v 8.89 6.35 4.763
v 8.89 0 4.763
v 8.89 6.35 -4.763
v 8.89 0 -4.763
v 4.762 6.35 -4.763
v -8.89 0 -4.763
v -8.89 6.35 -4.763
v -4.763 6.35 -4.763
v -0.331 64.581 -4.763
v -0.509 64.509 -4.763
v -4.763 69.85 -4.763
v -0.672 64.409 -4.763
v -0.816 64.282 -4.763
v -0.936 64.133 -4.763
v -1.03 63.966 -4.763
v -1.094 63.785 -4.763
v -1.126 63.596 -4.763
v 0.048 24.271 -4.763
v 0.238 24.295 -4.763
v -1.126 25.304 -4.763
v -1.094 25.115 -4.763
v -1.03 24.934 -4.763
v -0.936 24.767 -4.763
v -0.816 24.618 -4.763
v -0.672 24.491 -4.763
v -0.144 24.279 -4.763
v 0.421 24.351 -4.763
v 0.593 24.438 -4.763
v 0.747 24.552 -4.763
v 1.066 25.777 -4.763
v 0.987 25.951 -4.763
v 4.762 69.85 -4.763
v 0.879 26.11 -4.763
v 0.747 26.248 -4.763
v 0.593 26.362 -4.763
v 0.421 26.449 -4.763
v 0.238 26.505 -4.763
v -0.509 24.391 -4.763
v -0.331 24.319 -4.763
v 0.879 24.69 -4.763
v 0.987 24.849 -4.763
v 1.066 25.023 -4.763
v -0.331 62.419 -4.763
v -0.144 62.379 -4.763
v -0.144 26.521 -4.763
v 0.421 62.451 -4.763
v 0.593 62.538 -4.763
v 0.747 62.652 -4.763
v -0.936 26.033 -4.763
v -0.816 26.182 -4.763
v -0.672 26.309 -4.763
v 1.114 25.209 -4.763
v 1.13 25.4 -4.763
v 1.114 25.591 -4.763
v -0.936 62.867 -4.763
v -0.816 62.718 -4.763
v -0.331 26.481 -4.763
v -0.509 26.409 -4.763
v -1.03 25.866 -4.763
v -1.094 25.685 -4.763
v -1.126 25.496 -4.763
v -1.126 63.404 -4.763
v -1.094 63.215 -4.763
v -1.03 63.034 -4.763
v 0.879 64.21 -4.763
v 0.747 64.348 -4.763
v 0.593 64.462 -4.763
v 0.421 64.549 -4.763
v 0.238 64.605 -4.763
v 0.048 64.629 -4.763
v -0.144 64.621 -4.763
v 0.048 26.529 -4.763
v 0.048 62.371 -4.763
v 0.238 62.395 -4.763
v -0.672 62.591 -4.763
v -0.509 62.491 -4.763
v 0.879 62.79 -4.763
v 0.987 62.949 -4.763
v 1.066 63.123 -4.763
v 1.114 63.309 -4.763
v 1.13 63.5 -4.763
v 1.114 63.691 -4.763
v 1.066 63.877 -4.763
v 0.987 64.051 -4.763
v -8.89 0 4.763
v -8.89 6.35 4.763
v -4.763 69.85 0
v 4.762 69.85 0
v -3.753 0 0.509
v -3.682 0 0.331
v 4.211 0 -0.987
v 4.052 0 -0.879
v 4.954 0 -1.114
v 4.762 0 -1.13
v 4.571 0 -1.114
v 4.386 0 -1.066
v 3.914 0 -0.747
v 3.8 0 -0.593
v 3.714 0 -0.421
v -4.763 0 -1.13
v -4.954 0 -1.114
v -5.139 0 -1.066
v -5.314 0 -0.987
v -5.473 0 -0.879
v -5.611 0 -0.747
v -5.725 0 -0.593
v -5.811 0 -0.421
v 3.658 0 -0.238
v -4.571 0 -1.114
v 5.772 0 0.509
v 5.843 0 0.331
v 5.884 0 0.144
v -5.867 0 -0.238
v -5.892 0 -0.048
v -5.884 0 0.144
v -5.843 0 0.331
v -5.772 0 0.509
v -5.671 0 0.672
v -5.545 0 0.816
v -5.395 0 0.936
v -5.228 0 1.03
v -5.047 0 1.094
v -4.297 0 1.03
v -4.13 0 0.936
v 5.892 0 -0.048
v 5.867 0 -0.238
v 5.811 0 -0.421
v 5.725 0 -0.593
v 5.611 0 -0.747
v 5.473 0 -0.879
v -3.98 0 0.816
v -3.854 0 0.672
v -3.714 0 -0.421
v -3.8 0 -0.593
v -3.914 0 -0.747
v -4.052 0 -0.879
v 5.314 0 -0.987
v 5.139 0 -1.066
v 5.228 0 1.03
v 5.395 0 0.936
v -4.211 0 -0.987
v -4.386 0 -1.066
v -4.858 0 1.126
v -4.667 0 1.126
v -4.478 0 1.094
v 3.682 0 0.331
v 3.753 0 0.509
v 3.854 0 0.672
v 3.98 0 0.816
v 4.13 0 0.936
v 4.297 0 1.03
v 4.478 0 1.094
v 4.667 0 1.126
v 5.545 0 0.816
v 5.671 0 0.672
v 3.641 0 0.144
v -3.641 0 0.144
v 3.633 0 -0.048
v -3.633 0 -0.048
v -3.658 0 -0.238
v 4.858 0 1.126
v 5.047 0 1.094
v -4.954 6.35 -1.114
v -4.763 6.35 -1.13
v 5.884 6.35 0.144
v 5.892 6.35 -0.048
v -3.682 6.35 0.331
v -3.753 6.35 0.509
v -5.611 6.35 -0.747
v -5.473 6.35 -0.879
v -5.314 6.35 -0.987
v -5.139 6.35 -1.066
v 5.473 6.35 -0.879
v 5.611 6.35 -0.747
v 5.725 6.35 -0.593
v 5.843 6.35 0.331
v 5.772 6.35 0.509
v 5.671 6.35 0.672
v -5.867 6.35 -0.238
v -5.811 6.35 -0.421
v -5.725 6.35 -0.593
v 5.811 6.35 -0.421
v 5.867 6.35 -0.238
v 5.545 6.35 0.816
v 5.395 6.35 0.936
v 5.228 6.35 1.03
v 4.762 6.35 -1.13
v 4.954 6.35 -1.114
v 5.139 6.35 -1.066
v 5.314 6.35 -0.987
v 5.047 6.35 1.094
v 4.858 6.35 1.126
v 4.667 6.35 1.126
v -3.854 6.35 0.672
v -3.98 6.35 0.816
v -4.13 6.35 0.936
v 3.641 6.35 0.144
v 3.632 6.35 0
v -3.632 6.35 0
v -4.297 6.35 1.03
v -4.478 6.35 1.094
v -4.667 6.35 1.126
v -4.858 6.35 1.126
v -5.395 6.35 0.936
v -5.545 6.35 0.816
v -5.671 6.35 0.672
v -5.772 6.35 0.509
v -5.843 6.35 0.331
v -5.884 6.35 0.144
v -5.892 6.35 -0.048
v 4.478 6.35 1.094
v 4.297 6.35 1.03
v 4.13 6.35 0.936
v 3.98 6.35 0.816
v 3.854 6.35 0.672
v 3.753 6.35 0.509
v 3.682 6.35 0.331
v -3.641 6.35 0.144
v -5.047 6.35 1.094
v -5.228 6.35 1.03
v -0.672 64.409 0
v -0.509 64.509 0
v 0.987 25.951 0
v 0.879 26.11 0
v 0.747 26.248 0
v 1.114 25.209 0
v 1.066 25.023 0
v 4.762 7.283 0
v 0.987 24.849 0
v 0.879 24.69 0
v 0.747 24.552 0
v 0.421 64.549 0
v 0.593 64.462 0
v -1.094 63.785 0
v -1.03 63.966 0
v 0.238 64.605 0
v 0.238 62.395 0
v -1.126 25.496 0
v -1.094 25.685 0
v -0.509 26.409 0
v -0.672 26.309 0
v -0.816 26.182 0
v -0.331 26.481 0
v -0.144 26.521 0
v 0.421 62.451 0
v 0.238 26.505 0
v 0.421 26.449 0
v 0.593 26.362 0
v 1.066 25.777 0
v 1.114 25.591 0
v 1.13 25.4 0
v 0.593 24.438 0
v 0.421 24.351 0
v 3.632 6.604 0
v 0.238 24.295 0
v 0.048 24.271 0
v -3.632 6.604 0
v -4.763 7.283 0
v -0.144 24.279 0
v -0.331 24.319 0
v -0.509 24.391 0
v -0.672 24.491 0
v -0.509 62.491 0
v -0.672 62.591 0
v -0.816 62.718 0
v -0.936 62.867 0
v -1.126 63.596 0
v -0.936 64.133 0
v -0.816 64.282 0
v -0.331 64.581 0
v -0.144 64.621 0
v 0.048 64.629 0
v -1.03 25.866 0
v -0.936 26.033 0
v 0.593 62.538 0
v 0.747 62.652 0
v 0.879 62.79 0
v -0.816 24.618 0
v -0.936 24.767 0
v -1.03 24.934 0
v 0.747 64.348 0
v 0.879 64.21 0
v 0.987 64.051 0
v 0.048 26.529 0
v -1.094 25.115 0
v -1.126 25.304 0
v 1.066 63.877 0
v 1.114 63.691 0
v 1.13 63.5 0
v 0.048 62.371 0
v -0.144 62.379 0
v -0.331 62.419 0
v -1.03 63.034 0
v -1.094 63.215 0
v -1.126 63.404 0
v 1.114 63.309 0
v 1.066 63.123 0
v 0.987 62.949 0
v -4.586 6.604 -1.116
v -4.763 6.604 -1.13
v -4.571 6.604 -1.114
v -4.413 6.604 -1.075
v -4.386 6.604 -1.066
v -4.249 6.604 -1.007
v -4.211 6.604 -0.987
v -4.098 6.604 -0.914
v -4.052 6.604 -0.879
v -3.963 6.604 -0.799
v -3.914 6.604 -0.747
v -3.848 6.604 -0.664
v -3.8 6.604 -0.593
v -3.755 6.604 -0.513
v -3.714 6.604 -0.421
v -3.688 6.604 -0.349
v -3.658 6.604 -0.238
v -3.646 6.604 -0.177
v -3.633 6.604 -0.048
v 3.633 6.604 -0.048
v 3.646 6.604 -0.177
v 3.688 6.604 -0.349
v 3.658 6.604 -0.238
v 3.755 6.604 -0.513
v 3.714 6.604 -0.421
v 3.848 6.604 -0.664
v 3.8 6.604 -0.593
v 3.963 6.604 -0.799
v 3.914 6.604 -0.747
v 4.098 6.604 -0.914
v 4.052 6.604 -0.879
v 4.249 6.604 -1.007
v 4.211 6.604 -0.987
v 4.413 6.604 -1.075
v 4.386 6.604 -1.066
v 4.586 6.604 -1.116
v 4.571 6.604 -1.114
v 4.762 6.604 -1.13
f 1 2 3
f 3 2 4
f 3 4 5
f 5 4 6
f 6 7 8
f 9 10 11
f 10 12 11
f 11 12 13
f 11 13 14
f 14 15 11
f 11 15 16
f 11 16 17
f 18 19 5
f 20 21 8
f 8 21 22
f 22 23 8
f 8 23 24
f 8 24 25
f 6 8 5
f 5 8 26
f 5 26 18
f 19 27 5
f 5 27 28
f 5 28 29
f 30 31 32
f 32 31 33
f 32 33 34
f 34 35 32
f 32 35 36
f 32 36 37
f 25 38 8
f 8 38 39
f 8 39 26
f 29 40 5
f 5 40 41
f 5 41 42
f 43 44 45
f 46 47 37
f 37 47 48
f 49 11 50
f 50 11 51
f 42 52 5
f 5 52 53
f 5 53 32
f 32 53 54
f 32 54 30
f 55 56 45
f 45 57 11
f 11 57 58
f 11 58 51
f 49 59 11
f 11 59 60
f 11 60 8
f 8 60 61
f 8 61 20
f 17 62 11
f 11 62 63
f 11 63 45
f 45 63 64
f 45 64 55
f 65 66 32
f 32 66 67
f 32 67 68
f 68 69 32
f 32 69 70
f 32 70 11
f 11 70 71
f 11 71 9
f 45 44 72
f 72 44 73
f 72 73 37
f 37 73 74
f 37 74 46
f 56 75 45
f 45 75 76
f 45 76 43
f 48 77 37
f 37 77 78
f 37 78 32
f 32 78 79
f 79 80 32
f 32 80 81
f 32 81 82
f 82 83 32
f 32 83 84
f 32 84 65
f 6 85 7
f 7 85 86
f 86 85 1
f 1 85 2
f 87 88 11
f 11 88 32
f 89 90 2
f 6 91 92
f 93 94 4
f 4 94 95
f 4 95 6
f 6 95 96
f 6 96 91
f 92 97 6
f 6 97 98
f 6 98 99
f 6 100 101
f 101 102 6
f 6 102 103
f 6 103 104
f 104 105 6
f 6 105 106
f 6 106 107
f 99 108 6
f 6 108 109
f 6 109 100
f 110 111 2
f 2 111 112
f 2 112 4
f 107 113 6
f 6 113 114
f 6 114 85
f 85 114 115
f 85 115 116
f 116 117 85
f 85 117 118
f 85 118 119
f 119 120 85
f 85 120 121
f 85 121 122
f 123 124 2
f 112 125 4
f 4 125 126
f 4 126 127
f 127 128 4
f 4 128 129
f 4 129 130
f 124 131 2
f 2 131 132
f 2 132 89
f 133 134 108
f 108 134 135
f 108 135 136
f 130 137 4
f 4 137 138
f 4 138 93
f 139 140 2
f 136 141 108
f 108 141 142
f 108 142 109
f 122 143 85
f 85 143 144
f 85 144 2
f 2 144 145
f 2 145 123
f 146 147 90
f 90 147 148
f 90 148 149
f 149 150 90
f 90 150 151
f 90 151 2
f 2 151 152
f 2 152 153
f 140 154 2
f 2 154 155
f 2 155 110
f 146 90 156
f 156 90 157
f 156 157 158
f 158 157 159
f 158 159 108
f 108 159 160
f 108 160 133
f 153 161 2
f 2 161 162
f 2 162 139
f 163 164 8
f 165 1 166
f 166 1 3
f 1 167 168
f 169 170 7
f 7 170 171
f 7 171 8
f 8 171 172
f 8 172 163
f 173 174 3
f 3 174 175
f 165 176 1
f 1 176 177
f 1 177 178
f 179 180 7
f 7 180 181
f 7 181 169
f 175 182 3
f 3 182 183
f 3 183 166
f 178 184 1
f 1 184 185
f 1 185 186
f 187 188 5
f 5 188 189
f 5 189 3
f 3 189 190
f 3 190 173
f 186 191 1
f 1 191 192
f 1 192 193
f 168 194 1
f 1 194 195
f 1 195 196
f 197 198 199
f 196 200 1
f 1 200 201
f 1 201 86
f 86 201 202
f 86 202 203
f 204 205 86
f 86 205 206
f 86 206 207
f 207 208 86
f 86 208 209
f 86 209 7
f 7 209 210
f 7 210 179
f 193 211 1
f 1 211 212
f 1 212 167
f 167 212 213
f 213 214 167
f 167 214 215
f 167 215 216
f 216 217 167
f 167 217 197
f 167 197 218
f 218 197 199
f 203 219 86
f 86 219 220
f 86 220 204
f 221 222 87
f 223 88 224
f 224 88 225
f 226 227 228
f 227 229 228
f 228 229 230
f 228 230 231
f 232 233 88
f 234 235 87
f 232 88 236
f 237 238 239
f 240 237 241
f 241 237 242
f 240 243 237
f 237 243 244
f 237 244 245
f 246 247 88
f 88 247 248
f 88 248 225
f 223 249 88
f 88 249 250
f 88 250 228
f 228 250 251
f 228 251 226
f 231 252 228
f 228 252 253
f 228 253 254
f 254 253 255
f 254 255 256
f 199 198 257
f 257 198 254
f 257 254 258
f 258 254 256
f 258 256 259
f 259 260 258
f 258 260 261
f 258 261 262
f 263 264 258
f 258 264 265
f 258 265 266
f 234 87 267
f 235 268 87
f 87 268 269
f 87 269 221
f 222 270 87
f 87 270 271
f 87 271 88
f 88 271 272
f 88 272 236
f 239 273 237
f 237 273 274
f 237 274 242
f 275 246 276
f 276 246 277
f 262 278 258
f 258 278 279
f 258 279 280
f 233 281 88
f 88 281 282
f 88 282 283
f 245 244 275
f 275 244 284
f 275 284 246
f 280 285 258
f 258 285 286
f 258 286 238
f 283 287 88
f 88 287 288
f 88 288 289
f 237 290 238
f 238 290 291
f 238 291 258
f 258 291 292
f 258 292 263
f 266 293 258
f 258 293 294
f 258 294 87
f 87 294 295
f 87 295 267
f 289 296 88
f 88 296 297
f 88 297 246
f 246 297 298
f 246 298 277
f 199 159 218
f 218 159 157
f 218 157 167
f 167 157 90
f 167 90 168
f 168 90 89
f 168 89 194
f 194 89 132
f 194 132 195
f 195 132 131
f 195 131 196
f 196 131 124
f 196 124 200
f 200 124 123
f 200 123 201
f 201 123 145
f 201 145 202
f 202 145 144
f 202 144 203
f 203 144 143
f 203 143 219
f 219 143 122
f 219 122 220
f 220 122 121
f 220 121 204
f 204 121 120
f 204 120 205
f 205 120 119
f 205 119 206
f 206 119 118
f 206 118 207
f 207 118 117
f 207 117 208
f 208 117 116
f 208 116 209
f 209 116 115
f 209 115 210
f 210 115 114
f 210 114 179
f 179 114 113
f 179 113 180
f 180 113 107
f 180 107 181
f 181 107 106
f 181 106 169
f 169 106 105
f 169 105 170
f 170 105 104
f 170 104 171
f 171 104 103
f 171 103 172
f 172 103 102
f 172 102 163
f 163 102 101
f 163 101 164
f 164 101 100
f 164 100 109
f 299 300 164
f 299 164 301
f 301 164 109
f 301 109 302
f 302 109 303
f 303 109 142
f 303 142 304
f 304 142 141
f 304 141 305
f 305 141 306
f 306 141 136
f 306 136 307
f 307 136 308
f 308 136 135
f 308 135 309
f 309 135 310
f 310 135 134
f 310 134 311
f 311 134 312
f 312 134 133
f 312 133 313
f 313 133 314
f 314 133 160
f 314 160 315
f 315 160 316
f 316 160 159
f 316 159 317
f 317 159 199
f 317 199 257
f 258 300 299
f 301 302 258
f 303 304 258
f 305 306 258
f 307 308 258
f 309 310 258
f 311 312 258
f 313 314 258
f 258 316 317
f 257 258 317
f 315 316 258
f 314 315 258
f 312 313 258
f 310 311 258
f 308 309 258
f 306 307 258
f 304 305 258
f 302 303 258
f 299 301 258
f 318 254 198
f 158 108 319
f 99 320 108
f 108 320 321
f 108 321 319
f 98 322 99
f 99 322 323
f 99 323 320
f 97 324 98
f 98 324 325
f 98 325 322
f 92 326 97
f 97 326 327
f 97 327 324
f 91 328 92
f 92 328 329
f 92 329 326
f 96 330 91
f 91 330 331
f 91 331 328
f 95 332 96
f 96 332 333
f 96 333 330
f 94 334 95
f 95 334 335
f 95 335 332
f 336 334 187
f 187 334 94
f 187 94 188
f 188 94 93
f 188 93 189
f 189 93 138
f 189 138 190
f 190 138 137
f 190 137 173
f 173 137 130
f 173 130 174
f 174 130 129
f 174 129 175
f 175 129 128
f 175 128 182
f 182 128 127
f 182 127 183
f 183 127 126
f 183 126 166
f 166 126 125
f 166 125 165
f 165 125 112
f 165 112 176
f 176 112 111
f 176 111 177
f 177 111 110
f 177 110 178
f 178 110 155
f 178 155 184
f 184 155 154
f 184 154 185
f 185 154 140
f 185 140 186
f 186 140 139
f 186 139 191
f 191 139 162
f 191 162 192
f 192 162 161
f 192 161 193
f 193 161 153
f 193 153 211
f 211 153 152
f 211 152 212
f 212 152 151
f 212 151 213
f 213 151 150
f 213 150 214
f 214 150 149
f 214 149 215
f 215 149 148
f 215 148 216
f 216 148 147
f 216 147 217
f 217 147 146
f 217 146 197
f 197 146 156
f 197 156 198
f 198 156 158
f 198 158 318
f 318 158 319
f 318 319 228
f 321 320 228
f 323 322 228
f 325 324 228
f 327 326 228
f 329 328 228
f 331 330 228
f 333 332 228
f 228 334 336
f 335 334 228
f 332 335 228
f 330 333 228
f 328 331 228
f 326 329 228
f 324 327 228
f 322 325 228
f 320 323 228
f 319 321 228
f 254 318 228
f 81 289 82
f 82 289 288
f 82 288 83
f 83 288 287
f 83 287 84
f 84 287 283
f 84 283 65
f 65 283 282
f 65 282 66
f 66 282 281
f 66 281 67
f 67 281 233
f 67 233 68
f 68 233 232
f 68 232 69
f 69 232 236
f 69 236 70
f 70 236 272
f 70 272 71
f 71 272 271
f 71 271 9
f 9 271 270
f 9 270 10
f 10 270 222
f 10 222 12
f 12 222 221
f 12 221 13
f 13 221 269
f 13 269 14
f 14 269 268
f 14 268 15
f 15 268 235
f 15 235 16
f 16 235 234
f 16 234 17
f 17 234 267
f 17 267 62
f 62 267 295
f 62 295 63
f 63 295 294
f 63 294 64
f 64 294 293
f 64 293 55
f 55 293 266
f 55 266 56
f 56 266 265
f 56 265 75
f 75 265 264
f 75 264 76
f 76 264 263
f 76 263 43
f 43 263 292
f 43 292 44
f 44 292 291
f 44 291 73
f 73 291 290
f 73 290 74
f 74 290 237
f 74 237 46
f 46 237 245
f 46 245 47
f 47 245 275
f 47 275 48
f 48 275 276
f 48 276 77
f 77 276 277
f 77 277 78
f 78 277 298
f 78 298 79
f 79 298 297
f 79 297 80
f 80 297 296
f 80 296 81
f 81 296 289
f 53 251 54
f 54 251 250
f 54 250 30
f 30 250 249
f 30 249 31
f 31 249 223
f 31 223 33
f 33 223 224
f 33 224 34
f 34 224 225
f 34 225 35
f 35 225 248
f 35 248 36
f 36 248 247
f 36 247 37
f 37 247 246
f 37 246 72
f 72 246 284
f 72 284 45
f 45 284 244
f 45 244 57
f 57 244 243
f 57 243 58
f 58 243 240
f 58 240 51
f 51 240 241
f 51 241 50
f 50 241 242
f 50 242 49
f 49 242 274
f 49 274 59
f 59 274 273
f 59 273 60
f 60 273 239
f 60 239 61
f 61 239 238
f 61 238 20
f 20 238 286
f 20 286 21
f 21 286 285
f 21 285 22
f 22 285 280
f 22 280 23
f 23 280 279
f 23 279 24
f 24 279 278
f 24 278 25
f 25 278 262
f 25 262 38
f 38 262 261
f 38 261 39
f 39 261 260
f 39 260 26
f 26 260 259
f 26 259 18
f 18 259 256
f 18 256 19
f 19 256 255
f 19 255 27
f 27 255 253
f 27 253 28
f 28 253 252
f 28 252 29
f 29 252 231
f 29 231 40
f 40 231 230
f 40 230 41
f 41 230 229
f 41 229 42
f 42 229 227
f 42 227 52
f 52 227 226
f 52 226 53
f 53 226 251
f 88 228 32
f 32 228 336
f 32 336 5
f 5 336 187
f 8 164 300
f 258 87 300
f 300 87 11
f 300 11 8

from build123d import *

# Parameters (mm, degrees)
SKETCH1_W                 = 17.78
SKETCH1_H                 = 9.525
BOSS_EXTRUDE1_DEPTH       = 69.85
SKETCH2_W                 = 17.78
SKETCH2_H                 = 4.7625
CUT_EXTRUDE1_DEPTH        = 63.5
F_4_40_TAPPED_HOLE1_D     = 2.2606
F_4_40_TAPPED_HOLE1_DEPTH = 6.604
F_4_40_TAPPED_HOLE1_TIP   = 0.679152758
F_4_40_TAPPED_HOLE2_D     = 2.2606
F_4_40_TAPPED_HOLE2_DEPTH = 8.89
F_4_40_TAPPED_HOLE2_TIP   = 0.679152758
SKETCH9_W                 = 4.1275
SKETCH9_H                 = 63.5
CUT_EXTRUDE2_DEPTH        = 71.574329655


with BuildPart() as part:
    # Sketch1 → Boss-Extrude1 (new body)
    with BuildSketch(Plane(origin=(0, 0, 0), x_dir=(1, 0, 0), z_dir=(0, 1, 0))):
        Rectangle(SKETCH1_W, SKETCH1_H)
    extrude(amount=BOSS_EXTRUDE1_DEPTH)

    # Sketch2 → Cut-Extrude1 (cut)
    with BuildSketch(Plane(origin=(0, 69.85, 0), x_dir=(1, 0, 0), z_dir=(0, 1, 0))):
        with Locations((0, -2.38125)):
            Rectangle(SKETCH2_W, SKETCH2_H)
    extrude(amount=-CUT_EXTRUDE1_DEPTH, mode=Mode.SUBTRACT)

    # #4-40 Tapped Hole1
    with Locations(Plane(origin=(0, 0, 0), x_dir=(-1, 0, 0), z_dir=(0, -1, 0))):
        with Locations((-4.7625, 0), (4.7625, 0)):
            Hole(F_4_40_TAPPED_HOLE1_D / 2, depth=F_4_40_TAPPED_HOLE1_DEPTH)
            with Locations((0, 0, -(F_4_40_TAPPED_HOLE1_DEPTH + F_4_40_TAPPED_HOLE1_TIP / 2))):  # 118° drill point
                Cone(0, F_4_40_TAPPED_HOLE1_D / 2, F_4_40_TAPPED_HOLE1_TIP, mode=Mode.SUBTRACT)

    # #4-40 Tapped Hole2
    with Locations(Plane.XY):
        with Locations((0, 25.4), (0, 63.5)):
            Hole(F_4_40_TAPPED_HOLE2_D / 2, depth=F_4_40_TAPPED_HOLE2_DEPTH)
            with Locations((0, 0, -(F_4_40_TAPPED_HOLE2_DEPTH + F_4_40_TAPPED_HOLE2_TIP / 2))):  # 118° drill point
                Cone(0, F_4_40_TAPPED_HOLE2_D / 2, F_4_40_TAPPED_HOLE2_TIP, mode=Mode.SUBTRACT)

    # Sketch9 → Cut-Extrude2 (cut, through all)
    with BuildSketch(Plane.XY):
        with Locations((-6.82625, 38.1)):
            Rectangle(SKETCH9_W, SKETCH9_H)
        with Locations((6.82625, 38.1)):
            Rectangle(SKETCH9_W, SKETCH9_H)
    extrude(amount=-CUT_EXTRUDE2_DEPTH, mode=Mode.SUBTRACT)


solid = part.part
